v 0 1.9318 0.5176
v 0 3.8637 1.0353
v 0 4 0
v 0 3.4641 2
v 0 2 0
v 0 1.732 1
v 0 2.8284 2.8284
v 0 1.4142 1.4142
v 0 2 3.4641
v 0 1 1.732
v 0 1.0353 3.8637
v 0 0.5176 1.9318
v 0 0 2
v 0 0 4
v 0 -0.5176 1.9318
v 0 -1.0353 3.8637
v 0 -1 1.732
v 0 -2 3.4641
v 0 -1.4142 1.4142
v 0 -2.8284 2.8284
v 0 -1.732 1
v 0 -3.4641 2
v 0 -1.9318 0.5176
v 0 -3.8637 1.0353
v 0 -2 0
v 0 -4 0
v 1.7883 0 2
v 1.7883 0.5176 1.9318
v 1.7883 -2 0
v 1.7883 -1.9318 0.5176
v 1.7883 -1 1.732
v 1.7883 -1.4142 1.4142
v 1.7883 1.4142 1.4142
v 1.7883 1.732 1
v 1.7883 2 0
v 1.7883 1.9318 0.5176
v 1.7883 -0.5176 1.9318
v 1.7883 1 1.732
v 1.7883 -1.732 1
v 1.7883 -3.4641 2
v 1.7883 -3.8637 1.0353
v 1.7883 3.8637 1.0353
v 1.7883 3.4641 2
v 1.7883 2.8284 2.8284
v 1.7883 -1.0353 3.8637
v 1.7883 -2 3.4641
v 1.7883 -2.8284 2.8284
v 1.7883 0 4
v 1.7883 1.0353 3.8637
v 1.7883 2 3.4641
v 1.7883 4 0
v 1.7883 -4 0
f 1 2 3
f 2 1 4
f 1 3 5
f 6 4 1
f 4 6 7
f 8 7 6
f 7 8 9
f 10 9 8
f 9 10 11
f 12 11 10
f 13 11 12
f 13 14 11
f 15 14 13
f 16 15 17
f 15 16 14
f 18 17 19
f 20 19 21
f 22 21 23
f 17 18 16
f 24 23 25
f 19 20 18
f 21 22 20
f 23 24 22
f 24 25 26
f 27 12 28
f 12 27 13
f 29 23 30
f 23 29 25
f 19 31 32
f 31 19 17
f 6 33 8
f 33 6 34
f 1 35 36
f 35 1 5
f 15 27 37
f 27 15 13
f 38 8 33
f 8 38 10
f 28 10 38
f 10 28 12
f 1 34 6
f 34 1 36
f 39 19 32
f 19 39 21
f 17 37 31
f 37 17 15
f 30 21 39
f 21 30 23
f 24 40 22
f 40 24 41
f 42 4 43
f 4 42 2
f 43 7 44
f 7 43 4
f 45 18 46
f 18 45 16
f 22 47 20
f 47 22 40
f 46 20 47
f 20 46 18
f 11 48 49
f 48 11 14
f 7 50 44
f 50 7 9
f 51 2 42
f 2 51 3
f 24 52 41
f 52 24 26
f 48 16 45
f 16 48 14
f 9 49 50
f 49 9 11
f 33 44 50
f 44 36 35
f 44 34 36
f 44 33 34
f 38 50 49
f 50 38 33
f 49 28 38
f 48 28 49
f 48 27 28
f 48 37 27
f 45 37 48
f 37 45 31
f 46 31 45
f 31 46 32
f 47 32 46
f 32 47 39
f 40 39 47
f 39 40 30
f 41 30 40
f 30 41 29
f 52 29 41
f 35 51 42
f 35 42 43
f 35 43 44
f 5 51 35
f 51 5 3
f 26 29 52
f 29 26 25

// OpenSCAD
// file: ../build_environments.scad
// build_environments.scad: modules to build level sections
//

module pool(diameter=10.0, wall_height=2.0, step_width=3.0, connections=[])
{
    difference() {
        union() {
        difference() {
            cylinder(h=0.5,r1=diameter+step_width,r2=diameter+step_width,$fn=48);
            translate([0,0,-0.1])
                cylinder(h=0.7,r1=diameter,r2=diameter,$fn=48);
        }
        difference() {
            cylinder(h=wall_height,r1=diameter+step_width+1.0,r2=diameter+step_width+1.0,$fn=48);
            translate([0,0,-0.1])
                cylinder(h=wall_height+0.2,r1=diameter+step_width,r2=diameter+step_width,$fn=48);
        }
        }
    
        for (c = connections)
        {
            rotate([0,90,0]) {
                angle = atan2(c[1],c[0]);
                rotate([-angle,0,0]) {
                    cylinder(h=diameter+5.0,r1=c[2],r2=c[2],$fn=48);
                }
            }
        }
    }
}

module straight(length=10.0, width=2.0, dy1=0.0, dy2=0.0, dz=0.0)
{
    dims = [0, 0, 0, 0, 0, (dz/length)];
    matrix = [
        [ 1, dims[0], dims[1], 0 ],
        [ dims[2], 1, dims[4], 0 ],
        [ dims[5], dims[3], 1, 0 ],
        [ 0, 0, 0, 1 ]
    ];
    multmatrix(matrix)
    difference() {
        translate([dy1,0,0])
        union() {
            rotate([0,90,0]) {
                difference() {
                    cylinder(h=(length-dy1-dy2),r1=width+1.0,r2=width+1.0,$fn=24);
                    translate([0,0,-0.1])
                        cylinder(h=(length-dy1-dy2+0.2),r1=width,r2=width,$fn=24);
                }
                difference() {
                    cylinder(h=1.0,r1=width+2.0,r2=width+2.0,$fn=24);
                    translate([0,0,-0.1])
                        cylinder(h=1.2,r1=width,r2=width,$fn=24);
                }
                translate([0,0,(length-dy1-dy2)-1.0]) {
                    difference() {
                        cylinder(h=1.0,r1=width+2.0,r2=width+2.0,$fn=24);
                        translate([0,0,-0.1])
                            cylinder(h=1.2,r1=width,r2=width,$fn=24);
                    }
                }
            }
        }
        translate([0,0,-(2*width+4.0)/2])
            cube([3*length,3*length,2*width+4.0],center=true);
    }
}

module curve(p0=[0,0], center=[0,0], dir=1, angle=0.0, width=2.0)
{
    radius = sqrt((p0[0]-center[0])*(p0[0]-center[0]) + (p0[1]-center[1])*(p0[1]-center[1]));
    if (dir == 0) {
        difference() {
            rotate([0,0,-90])
            difference() {
                rotate_extrude(angle = angle, convexity = 10, $fn=32)
                    translate([radius, 0, 0])
                        circle(r = width+1.0,$fn=24);
                rotate([0,0,-1.0])
                    rotate_extrude(angle = angle+2.0, convexity = 10, $fn=32)
                        translate([radius, 0, 0])
                            circle(r = width,$fn=24);
            }
            translate([0,0,-(2*width+4.0)/2])
                cube([5*radius,5*radius,2*width+4.0],center=true);
        }
    }
    else {
        difference() {
            rotate([0,0,90])
            difference() {
                rotate_extrude(angle = -angle, convexity = 10, $fn=32)
                    translate([radius, 0, 0])
                        circle(r = width+1.0,$fn=24);
                rotate([0,0,1.0])
                    rotate_extrude(angle = -angle-2.0, convexity = 10, $fn=32)
                        translate([radius, 0, 0])
                            circle(r = width,$fn=24);
            }
            translate([0,0,-(2*width+4.0)/2])
                cube([5*radius,5*radius,2*width+4.0],center=true);
        }
    }

}

// test pool
//pool(diameter=12.0000, wall_height=3.0000, step_width=3.0000, connections=[[0.0000,-26.0000,2.0000], [23.6074,0.0000,2.0000]]);

// test straight, slope
//straight(length=26.0000, width=2.0000, dy1=11.8322, dy2=6.7082, dz=0.0000);
//straight(length=29.1549, width=12.0000, dy1=0.0000, dy2=0.0000, dz=-15.0000);

// test curve
//curve(p0=[23.6074, 0.0000], center=[23.6074, 5.0000], dir=0, angle=60.1011, width=2.0000);
//curve(p0=[33.6426, 12.4219], center=[37.9771, 9.9295], dir=1, angle=120.4627, width=2.0000);
// main file
use <../build_environments.scad>;
straight(length=8.4965, width=2.0000, dy1=0.0000, dy2=6.7082, dz=0.0000);
